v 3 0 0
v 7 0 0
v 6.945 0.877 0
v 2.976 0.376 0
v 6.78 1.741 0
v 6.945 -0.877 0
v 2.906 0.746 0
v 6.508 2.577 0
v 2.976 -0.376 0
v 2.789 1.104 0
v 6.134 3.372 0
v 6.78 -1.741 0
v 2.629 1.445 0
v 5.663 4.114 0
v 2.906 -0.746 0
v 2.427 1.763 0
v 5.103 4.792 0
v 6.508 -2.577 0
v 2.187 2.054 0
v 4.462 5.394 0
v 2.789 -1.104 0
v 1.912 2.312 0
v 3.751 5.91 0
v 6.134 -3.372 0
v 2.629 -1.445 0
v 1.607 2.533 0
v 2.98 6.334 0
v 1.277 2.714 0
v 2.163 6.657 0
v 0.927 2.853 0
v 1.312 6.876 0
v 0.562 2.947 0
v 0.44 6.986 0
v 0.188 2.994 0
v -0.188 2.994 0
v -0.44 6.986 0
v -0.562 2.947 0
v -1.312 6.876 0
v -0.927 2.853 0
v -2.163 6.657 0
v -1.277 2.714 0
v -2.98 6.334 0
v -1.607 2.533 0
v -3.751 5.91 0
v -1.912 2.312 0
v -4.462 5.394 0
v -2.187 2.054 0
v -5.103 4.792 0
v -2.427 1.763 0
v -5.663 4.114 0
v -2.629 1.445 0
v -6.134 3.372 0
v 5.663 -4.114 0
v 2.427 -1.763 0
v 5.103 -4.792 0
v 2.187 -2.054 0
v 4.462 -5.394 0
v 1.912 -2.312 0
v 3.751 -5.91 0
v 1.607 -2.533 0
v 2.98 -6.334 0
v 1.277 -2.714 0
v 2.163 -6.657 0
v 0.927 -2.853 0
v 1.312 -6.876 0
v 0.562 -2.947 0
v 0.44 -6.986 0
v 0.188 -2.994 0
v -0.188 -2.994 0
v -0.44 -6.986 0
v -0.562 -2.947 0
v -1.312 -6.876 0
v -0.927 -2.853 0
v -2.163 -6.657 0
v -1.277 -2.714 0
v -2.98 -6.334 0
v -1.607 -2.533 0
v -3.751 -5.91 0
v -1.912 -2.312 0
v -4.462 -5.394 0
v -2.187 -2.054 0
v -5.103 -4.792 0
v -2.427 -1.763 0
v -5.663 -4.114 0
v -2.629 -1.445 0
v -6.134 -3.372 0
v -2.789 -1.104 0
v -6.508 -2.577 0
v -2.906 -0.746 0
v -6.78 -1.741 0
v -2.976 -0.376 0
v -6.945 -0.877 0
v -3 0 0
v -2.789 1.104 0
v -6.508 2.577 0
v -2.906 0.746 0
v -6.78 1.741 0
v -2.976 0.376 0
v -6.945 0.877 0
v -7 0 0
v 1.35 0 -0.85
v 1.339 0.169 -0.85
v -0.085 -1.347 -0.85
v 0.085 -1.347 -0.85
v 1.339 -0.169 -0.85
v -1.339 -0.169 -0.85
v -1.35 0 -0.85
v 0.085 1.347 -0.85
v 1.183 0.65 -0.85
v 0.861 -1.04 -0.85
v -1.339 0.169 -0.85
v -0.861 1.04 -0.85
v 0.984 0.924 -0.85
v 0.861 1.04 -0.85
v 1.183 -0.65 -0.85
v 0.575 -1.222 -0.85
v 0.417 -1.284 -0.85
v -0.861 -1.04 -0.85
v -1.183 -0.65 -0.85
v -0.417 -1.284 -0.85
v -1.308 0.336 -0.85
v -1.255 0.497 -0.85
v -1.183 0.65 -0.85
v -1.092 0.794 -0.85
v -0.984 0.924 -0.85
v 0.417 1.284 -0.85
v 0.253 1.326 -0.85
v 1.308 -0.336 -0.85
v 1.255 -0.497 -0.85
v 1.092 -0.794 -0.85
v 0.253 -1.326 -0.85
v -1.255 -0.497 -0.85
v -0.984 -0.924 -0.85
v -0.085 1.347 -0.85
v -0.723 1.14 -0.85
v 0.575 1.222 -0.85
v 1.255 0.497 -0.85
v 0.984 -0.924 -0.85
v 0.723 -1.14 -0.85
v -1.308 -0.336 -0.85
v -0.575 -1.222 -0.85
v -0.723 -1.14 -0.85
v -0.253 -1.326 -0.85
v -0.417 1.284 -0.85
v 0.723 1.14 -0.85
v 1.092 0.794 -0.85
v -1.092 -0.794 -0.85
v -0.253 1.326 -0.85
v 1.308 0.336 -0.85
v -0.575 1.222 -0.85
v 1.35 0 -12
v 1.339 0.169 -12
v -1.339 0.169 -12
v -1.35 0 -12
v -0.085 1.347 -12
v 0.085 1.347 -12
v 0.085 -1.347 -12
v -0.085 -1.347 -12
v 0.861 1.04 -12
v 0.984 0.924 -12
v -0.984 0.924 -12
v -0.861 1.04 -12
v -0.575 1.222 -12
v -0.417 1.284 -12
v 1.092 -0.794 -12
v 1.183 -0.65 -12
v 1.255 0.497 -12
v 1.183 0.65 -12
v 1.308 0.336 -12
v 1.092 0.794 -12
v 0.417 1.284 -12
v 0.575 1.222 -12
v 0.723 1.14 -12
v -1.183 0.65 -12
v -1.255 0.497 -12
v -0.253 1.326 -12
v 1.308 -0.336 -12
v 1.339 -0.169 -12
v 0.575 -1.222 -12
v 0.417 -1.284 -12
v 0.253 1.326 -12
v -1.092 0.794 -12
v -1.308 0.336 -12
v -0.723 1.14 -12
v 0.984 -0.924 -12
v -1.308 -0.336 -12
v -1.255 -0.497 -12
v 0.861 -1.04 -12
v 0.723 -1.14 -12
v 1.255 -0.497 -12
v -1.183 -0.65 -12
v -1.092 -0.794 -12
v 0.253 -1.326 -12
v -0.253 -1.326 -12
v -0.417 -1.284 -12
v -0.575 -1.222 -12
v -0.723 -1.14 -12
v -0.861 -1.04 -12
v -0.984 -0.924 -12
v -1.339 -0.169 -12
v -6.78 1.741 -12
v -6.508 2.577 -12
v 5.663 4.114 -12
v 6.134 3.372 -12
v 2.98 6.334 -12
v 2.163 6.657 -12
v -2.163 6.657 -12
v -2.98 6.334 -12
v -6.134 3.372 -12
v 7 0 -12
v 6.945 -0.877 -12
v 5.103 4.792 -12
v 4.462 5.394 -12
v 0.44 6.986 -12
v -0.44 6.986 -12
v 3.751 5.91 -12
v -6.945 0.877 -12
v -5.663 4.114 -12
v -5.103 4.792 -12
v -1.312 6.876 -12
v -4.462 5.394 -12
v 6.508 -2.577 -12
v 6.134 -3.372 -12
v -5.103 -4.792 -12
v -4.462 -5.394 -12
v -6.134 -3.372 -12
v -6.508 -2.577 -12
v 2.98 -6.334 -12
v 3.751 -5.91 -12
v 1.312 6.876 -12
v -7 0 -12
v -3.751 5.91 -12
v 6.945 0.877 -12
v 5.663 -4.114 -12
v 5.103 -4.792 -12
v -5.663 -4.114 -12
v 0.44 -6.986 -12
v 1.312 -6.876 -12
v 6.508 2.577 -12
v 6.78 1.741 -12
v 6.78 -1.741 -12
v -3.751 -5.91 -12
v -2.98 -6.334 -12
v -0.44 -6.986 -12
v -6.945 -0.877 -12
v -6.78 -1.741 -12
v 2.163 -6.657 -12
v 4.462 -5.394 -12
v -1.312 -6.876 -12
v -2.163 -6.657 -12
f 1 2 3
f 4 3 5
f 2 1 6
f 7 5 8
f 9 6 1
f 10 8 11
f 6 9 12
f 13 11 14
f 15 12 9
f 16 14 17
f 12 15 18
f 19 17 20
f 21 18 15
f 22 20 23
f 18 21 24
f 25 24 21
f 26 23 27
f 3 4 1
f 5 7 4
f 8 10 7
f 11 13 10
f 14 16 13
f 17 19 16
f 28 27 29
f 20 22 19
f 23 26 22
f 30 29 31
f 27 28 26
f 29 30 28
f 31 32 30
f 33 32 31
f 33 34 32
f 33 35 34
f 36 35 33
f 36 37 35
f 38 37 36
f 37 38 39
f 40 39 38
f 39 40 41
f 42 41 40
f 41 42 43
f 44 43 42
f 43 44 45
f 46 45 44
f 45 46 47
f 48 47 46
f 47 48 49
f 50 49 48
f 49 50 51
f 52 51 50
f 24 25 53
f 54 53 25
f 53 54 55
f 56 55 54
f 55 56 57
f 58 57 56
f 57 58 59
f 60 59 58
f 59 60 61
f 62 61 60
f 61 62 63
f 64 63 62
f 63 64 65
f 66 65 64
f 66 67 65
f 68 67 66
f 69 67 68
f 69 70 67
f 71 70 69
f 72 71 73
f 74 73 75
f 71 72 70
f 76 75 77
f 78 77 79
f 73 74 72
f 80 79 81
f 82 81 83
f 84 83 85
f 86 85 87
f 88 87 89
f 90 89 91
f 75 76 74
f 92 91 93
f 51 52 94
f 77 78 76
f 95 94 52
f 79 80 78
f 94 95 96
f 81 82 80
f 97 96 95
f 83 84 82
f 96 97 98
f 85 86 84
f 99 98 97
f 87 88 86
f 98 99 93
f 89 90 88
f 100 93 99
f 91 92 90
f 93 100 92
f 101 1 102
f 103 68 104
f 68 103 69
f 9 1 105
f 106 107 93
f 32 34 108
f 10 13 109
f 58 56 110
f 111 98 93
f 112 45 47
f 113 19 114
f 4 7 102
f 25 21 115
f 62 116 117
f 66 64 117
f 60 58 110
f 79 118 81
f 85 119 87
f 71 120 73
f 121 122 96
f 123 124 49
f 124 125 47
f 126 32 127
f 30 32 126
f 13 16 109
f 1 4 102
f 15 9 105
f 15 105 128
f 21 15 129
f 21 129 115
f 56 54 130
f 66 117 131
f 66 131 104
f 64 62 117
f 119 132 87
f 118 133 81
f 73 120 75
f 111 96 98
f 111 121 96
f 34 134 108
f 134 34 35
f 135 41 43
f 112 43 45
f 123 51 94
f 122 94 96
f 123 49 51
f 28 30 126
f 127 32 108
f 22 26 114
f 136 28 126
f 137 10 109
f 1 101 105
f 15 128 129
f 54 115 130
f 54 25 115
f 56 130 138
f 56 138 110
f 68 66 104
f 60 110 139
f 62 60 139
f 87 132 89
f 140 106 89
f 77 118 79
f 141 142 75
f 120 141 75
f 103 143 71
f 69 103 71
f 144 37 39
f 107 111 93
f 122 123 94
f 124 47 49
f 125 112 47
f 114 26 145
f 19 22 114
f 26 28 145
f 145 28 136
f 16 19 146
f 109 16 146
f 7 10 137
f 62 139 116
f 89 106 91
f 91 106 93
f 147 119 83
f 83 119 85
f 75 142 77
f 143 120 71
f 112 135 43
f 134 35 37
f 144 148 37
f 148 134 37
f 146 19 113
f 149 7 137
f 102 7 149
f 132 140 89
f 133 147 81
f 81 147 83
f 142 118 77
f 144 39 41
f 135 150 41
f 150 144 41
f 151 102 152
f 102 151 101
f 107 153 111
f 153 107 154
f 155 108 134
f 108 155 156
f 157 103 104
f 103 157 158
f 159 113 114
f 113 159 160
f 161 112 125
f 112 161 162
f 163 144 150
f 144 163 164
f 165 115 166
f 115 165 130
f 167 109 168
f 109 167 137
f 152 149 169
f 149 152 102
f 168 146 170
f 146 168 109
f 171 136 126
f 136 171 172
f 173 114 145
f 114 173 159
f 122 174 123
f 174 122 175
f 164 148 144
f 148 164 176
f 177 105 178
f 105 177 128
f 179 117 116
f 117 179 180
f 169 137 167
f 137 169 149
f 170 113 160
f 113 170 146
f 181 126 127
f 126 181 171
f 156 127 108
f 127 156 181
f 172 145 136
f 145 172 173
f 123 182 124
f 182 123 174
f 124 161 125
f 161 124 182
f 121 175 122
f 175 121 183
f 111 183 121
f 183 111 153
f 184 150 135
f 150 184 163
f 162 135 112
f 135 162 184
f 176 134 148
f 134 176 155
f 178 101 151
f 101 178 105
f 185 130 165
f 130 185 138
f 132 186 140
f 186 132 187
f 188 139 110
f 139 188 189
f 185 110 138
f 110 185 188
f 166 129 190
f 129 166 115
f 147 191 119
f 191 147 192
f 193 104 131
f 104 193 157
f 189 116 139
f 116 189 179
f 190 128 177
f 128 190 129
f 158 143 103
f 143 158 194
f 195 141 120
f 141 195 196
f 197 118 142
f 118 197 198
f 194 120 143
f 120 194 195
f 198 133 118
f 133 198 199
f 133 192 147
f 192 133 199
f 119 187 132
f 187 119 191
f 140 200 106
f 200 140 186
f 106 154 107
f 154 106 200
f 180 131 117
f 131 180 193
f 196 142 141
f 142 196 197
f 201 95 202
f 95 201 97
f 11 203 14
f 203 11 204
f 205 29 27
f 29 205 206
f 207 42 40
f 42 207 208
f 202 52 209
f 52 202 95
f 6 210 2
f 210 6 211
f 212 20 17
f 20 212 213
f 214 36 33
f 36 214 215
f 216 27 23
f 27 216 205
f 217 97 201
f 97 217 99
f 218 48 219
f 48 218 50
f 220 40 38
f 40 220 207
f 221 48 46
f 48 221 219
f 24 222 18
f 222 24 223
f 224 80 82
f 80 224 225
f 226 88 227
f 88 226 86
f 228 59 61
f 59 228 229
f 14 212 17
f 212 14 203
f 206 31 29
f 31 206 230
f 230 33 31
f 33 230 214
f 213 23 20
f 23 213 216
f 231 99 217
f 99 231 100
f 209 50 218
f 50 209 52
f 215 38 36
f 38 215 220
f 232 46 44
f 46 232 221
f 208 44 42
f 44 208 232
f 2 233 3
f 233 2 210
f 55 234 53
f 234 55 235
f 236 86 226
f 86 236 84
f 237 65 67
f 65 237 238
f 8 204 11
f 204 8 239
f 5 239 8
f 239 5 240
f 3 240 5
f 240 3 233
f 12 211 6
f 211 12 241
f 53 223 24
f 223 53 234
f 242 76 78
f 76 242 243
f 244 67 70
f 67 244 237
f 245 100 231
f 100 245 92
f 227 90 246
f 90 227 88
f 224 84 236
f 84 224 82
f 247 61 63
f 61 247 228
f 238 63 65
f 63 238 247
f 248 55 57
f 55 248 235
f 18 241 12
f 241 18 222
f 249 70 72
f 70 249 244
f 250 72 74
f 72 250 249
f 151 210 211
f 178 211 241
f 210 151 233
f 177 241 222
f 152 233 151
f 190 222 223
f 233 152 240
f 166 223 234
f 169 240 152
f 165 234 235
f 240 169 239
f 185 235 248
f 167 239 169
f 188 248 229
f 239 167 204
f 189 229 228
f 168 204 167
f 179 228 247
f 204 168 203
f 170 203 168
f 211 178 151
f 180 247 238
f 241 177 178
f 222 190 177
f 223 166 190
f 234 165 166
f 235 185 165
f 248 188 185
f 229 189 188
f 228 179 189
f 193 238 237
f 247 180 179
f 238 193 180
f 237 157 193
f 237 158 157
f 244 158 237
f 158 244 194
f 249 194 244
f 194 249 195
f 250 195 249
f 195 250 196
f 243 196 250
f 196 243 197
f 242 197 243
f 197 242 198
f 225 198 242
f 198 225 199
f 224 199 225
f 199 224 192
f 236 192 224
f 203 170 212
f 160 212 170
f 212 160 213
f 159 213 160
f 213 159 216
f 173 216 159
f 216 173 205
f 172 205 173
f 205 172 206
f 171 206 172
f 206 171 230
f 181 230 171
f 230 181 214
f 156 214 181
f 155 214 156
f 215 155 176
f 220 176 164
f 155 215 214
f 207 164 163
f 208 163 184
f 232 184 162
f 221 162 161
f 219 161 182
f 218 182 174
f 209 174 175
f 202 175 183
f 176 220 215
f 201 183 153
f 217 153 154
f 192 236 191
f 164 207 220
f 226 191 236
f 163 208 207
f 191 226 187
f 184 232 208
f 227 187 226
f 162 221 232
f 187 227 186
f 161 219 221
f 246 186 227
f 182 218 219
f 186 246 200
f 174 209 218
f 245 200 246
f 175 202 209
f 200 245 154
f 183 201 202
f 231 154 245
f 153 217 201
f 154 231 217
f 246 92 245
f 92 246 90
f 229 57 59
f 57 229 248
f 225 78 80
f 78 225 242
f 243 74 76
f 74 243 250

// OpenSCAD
$fn = 50;

difference() {
	union() {
		translate(v = [0, 0, -12.0]) {
			cylinder(h = 12, r = 7.0);
		}
	}
	union() {
		translate(v = [0, 0, 0]) {
			rotate(a = [0, 0, 0]) {
				difference() {
					union() {
						translate(v = [0, 0, -15.0]) {
							cylinder(h = 15, r = 1.0);
						}
						translate(v = [0, 0, -0.85]) {
							cylinder(h = 0.85, r1 = 1.35, r2 = 3.0);
						}
						translate(v = [0, 0, -15.0]) {
							cylinder(h = 15, r = 1.35);
						}
						translate(v = [0, 0, -15.0]) {
							cylinder(h = 15, r = 1.0);
						}
					}
					union();
				}
			}
		}
	}
}
